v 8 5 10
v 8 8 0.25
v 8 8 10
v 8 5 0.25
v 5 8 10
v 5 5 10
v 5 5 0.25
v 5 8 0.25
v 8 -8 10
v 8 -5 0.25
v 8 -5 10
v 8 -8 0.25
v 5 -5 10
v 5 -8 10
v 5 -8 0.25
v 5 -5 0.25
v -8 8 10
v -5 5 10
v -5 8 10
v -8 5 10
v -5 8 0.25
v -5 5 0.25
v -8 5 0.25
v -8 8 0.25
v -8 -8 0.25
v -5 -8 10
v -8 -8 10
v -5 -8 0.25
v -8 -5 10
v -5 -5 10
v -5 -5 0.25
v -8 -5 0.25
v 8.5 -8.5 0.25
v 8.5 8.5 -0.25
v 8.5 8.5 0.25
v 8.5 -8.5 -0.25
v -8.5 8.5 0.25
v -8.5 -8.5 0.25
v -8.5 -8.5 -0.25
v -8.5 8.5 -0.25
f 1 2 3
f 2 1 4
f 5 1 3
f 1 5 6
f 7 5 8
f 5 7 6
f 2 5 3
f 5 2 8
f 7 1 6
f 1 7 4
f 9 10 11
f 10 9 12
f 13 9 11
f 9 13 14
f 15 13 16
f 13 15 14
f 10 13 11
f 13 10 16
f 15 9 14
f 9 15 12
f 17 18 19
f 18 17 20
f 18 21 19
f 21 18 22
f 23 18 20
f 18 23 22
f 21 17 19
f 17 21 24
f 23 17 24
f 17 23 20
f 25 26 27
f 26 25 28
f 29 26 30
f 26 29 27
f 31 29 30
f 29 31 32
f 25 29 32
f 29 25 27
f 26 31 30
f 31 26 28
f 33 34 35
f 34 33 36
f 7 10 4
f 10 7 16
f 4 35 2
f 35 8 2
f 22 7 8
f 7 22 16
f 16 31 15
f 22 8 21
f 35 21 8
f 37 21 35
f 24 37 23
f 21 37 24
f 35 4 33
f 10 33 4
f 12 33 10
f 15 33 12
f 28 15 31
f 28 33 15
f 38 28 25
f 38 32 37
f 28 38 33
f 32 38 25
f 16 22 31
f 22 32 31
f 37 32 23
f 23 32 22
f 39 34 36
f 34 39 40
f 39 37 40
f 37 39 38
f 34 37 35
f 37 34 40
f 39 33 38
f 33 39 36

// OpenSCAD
tower = 3;
gap = 15;
base=.5;
height = 10;

union() {
  cube([gap+2,gap+2,base],center=true);
  for (x=[0,1], y=[0,1]) {
     mirror([x,y,0]) translate([5,5,0]) cube([tower,tower,height]);
  }
}
